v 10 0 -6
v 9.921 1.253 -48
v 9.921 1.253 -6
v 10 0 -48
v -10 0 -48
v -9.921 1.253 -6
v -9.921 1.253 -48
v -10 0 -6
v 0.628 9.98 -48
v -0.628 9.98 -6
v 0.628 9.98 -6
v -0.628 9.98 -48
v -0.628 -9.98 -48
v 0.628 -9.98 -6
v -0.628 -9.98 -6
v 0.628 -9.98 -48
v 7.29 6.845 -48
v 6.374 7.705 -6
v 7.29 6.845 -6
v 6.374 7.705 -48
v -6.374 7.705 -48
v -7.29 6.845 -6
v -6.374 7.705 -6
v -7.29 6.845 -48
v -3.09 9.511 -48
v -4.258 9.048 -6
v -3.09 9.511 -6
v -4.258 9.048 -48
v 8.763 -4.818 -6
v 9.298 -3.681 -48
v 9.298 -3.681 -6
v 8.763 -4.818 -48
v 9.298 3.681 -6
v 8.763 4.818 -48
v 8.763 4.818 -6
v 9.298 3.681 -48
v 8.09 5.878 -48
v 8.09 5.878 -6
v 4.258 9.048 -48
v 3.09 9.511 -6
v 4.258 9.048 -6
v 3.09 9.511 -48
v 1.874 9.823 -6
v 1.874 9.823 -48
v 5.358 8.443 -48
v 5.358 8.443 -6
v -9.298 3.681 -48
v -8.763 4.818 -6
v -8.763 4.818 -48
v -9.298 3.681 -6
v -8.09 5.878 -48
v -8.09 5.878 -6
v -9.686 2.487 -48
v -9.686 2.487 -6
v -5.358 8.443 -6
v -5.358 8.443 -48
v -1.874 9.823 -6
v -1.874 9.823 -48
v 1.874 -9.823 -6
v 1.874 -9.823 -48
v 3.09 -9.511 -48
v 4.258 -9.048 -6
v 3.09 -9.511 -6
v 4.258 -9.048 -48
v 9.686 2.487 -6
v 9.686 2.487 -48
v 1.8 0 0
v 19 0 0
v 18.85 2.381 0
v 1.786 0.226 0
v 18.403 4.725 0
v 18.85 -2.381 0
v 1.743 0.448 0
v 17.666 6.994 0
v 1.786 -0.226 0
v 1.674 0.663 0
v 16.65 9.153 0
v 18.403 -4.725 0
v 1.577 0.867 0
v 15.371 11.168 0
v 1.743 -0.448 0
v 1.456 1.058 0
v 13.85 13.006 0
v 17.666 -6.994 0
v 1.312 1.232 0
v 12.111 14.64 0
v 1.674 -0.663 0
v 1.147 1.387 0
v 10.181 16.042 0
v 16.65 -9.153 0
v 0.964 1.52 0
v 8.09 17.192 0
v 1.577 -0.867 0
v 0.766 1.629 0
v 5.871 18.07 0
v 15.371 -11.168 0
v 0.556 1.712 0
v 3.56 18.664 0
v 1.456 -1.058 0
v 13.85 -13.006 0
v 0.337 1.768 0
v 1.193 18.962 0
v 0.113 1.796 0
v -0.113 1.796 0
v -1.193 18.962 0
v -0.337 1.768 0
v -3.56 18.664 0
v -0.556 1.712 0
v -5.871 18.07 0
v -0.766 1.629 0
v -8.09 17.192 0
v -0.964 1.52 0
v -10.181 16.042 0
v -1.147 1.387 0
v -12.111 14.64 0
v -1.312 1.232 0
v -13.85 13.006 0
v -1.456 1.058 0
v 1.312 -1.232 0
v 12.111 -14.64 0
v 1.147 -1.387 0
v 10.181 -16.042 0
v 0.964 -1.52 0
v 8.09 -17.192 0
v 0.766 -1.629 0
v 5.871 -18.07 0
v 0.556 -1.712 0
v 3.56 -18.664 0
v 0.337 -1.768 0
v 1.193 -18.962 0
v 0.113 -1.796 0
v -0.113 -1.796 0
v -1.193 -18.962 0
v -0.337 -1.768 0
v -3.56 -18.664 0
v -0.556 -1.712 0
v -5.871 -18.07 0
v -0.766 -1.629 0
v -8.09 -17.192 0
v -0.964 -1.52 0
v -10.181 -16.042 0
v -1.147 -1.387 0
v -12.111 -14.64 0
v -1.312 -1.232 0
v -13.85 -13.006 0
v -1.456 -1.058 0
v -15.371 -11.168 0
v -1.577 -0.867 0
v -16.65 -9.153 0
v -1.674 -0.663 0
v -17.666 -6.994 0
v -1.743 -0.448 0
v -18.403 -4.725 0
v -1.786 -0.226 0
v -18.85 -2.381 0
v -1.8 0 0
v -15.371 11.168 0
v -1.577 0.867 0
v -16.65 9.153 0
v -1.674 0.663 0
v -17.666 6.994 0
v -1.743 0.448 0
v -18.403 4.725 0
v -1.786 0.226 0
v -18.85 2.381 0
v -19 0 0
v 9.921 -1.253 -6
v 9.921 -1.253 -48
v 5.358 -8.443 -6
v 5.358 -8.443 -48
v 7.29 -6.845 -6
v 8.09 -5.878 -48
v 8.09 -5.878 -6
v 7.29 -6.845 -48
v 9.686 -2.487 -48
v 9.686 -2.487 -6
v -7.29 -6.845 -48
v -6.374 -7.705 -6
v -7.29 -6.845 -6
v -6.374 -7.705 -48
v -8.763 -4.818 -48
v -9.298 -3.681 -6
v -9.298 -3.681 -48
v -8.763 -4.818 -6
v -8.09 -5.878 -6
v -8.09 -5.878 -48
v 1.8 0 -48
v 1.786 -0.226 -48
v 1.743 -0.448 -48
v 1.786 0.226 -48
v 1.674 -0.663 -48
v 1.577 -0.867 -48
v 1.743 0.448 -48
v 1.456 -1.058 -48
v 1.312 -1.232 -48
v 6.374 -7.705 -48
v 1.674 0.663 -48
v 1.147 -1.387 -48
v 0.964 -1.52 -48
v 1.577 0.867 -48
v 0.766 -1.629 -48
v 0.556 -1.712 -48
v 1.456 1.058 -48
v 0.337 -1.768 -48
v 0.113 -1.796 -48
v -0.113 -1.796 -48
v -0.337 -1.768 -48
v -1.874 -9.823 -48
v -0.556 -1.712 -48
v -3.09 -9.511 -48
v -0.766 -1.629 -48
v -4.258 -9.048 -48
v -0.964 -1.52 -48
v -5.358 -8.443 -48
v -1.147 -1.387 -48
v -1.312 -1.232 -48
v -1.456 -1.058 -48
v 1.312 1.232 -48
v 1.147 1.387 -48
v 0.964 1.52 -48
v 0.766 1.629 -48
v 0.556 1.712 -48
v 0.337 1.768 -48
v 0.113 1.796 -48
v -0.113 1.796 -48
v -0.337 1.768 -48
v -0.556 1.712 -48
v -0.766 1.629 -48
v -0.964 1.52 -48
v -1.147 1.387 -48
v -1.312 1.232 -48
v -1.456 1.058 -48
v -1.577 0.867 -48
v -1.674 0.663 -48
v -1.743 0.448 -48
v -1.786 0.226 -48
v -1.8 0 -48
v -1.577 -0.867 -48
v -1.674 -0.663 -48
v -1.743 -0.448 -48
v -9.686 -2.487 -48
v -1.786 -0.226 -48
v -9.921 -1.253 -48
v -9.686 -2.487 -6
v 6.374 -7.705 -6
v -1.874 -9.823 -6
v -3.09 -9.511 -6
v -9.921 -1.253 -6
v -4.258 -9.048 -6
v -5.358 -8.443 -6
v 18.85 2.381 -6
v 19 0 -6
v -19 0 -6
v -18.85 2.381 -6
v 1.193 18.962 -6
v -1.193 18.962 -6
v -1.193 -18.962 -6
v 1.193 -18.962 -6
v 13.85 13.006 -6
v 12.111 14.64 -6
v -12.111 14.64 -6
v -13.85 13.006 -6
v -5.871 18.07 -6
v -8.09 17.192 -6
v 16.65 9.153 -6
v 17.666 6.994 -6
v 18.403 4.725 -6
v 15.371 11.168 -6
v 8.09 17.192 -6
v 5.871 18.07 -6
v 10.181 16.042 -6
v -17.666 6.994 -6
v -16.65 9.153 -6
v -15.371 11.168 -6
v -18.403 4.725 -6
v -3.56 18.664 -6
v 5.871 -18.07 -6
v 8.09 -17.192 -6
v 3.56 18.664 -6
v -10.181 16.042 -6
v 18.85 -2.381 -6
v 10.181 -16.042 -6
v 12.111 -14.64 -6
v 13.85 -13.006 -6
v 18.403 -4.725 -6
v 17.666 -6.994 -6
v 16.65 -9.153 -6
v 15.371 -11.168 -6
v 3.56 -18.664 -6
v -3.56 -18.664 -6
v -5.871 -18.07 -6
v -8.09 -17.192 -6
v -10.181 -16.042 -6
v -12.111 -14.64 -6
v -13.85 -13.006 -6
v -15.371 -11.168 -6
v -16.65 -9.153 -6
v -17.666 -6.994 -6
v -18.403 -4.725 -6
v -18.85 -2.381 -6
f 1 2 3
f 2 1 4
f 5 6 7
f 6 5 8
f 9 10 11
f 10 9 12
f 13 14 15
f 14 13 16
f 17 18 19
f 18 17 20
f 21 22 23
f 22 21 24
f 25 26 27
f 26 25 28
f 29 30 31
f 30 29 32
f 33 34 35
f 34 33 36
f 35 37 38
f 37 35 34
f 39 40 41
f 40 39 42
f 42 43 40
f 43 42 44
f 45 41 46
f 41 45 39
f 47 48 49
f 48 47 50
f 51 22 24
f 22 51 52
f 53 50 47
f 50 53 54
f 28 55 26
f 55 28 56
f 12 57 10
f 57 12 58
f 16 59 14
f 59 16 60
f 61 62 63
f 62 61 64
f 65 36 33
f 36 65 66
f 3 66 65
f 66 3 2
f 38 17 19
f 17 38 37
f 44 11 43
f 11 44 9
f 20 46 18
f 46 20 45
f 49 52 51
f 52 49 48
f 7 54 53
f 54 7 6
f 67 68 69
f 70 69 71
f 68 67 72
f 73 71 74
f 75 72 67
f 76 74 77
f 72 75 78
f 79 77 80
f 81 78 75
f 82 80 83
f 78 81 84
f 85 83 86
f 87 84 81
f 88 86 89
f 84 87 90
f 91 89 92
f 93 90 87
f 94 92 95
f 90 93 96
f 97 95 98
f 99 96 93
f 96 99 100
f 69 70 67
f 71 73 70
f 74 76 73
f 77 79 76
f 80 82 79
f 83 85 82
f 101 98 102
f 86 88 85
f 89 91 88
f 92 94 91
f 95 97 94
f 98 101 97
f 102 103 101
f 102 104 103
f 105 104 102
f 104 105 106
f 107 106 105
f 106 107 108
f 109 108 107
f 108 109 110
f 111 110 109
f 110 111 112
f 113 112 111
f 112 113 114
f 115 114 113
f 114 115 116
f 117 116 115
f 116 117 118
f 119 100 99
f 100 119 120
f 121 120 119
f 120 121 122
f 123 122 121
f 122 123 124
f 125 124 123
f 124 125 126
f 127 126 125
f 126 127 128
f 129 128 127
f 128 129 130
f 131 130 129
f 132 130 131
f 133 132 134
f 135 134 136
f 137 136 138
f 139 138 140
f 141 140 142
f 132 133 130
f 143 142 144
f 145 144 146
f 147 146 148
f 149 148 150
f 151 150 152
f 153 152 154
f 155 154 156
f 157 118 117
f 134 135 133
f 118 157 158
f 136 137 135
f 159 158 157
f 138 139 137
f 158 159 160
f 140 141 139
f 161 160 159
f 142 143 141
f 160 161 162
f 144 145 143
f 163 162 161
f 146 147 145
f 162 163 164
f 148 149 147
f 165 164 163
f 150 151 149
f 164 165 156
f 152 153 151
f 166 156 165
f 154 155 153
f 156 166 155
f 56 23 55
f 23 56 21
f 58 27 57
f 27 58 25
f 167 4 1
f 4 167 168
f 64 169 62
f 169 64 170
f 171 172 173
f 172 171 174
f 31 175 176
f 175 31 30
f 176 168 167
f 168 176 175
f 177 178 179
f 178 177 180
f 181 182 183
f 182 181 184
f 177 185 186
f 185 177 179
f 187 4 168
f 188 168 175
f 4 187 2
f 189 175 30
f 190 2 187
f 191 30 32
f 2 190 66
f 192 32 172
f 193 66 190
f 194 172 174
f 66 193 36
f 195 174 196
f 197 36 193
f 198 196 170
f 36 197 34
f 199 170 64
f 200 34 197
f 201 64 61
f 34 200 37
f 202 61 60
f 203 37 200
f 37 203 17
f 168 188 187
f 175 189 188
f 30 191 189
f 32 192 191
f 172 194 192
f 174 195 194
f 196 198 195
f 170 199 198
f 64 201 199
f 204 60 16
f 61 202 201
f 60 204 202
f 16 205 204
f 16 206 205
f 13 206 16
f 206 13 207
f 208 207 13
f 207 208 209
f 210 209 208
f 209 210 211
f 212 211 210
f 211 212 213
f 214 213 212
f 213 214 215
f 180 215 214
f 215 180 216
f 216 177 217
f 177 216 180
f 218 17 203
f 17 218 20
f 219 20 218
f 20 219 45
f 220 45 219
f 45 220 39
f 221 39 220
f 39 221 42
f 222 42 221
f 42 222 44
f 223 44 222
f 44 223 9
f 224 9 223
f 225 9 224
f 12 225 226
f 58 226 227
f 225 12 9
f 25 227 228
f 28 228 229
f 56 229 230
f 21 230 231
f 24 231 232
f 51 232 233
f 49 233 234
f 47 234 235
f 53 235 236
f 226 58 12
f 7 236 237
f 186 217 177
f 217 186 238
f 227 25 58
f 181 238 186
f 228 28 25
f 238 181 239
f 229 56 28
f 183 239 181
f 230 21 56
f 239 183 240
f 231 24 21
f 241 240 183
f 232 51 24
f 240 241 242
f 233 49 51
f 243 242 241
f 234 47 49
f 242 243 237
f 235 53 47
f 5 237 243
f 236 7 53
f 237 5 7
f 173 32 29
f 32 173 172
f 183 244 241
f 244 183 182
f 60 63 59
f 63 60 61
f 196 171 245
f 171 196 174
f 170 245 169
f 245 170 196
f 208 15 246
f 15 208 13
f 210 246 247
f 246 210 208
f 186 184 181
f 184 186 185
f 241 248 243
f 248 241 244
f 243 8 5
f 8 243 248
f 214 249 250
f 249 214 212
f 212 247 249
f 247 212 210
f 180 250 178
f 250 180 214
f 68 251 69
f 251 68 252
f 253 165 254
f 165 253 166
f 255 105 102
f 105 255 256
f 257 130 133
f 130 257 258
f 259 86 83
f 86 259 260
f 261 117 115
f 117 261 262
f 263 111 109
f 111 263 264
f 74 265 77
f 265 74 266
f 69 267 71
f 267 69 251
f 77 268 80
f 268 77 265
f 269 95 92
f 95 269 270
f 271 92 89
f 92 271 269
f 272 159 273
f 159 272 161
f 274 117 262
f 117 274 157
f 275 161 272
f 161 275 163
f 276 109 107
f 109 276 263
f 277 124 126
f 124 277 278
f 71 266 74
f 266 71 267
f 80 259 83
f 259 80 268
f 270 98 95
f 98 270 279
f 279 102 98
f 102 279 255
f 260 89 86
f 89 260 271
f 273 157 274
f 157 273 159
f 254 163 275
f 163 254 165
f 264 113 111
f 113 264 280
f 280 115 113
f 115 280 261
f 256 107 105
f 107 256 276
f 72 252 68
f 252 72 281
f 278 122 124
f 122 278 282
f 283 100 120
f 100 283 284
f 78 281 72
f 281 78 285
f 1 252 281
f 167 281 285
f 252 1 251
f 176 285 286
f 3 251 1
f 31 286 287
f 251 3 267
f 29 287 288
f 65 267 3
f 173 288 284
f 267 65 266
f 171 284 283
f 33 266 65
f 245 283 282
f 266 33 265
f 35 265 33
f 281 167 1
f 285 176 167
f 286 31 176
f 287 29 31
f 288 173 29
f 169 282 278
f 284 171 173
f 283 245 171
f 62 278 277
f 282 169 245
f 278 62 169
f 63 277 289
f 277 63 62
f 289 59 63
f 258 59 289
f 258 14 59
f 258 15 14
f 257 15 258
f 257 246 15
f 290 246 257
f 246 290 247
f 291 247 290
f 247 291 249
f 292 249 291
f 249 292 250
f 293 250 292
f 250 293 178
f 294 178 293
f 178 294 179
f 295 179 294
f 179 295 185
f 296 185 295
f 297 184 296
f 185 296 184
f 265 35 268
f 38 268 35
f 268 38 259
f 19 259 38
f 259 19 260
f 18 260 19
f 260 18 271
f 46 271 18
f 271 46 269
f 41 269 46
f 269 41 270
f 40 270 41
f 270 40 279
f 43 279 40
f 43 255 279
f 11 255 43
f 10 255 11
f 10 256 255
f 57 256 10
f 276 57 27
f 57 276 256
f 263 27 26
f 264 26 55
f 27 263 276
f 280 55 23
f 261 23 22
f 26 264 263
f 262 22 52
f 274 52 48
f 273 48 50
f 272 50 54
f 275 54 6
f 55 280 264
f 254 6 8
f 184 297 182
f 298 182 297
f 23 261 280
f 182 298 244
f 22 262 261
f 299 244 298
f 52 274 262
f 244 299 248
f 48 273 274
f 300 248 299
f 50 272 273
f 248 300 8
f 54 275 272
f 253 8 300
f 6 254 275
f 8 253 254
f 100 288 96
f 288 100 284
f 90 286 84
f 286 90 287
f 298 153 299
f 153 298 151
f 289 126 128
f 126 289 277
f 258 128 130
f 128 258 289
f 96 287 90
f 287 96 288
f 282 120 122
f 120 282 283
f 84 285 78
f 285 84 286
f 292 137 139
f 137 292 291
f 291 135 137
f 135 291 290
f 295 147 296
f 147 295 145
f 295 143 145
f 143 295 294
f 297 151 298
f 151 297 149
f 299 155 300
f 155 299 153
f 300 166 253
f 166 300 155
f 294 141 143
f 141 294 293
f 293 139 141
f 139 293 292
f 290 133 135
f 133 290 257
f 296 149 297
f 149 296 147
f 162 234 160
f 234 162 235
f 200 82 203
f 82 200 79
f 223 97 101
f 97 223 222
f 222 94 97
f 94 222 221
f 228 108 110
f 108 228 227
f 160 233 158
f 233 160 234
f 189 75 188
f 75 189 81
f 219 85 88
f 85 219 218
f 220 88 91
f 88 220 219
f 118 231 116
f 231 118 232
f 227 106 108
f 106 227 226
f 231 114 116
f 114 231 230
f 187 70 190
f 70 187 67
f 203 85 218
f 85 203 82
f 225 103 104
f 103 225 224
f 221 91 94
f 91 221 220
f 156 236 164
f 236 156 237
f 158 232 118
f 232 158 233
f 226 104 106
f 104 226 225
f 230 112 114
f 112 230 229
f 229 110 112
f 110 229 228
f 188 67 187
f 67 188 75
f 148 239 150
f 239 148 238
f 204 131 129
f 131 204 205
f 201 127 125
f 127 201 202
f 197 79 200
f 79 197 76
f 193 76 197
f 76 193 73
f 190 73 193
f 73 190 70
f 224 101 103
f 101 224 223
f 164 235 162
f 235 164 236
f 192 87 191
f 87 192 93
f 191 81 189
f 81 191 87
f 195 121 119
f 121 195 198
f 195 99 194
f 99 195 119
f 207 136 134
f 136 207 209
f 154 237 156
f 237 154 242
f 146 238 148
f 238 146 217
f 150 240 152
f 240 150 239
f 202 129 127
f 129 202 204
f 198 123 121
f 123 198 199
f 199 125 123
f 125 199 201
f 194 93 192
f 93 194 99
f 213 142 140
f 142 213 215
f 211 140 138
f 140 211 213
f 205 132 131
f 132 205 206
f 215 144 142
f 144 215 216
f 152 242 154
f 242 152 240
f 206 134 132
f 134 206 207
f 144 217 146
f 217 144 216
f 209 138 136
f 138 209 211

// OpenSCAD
$fn = 50;


difference() {
	union() {
		translate(v = [0, 0, -48.0000000000]) {
			cylinder(h = 48, r = 10.0000000000);
		}
		translate(v = [0, 0, -6.0000000000]) {
			cylinder(h = 6, r = 19.0000000000);
		}
	}
	union() {
		#translate(v = [0, 0, -48]) {
			cylinder(h = 48, r = 1.8000000000);
		}
	}
}
